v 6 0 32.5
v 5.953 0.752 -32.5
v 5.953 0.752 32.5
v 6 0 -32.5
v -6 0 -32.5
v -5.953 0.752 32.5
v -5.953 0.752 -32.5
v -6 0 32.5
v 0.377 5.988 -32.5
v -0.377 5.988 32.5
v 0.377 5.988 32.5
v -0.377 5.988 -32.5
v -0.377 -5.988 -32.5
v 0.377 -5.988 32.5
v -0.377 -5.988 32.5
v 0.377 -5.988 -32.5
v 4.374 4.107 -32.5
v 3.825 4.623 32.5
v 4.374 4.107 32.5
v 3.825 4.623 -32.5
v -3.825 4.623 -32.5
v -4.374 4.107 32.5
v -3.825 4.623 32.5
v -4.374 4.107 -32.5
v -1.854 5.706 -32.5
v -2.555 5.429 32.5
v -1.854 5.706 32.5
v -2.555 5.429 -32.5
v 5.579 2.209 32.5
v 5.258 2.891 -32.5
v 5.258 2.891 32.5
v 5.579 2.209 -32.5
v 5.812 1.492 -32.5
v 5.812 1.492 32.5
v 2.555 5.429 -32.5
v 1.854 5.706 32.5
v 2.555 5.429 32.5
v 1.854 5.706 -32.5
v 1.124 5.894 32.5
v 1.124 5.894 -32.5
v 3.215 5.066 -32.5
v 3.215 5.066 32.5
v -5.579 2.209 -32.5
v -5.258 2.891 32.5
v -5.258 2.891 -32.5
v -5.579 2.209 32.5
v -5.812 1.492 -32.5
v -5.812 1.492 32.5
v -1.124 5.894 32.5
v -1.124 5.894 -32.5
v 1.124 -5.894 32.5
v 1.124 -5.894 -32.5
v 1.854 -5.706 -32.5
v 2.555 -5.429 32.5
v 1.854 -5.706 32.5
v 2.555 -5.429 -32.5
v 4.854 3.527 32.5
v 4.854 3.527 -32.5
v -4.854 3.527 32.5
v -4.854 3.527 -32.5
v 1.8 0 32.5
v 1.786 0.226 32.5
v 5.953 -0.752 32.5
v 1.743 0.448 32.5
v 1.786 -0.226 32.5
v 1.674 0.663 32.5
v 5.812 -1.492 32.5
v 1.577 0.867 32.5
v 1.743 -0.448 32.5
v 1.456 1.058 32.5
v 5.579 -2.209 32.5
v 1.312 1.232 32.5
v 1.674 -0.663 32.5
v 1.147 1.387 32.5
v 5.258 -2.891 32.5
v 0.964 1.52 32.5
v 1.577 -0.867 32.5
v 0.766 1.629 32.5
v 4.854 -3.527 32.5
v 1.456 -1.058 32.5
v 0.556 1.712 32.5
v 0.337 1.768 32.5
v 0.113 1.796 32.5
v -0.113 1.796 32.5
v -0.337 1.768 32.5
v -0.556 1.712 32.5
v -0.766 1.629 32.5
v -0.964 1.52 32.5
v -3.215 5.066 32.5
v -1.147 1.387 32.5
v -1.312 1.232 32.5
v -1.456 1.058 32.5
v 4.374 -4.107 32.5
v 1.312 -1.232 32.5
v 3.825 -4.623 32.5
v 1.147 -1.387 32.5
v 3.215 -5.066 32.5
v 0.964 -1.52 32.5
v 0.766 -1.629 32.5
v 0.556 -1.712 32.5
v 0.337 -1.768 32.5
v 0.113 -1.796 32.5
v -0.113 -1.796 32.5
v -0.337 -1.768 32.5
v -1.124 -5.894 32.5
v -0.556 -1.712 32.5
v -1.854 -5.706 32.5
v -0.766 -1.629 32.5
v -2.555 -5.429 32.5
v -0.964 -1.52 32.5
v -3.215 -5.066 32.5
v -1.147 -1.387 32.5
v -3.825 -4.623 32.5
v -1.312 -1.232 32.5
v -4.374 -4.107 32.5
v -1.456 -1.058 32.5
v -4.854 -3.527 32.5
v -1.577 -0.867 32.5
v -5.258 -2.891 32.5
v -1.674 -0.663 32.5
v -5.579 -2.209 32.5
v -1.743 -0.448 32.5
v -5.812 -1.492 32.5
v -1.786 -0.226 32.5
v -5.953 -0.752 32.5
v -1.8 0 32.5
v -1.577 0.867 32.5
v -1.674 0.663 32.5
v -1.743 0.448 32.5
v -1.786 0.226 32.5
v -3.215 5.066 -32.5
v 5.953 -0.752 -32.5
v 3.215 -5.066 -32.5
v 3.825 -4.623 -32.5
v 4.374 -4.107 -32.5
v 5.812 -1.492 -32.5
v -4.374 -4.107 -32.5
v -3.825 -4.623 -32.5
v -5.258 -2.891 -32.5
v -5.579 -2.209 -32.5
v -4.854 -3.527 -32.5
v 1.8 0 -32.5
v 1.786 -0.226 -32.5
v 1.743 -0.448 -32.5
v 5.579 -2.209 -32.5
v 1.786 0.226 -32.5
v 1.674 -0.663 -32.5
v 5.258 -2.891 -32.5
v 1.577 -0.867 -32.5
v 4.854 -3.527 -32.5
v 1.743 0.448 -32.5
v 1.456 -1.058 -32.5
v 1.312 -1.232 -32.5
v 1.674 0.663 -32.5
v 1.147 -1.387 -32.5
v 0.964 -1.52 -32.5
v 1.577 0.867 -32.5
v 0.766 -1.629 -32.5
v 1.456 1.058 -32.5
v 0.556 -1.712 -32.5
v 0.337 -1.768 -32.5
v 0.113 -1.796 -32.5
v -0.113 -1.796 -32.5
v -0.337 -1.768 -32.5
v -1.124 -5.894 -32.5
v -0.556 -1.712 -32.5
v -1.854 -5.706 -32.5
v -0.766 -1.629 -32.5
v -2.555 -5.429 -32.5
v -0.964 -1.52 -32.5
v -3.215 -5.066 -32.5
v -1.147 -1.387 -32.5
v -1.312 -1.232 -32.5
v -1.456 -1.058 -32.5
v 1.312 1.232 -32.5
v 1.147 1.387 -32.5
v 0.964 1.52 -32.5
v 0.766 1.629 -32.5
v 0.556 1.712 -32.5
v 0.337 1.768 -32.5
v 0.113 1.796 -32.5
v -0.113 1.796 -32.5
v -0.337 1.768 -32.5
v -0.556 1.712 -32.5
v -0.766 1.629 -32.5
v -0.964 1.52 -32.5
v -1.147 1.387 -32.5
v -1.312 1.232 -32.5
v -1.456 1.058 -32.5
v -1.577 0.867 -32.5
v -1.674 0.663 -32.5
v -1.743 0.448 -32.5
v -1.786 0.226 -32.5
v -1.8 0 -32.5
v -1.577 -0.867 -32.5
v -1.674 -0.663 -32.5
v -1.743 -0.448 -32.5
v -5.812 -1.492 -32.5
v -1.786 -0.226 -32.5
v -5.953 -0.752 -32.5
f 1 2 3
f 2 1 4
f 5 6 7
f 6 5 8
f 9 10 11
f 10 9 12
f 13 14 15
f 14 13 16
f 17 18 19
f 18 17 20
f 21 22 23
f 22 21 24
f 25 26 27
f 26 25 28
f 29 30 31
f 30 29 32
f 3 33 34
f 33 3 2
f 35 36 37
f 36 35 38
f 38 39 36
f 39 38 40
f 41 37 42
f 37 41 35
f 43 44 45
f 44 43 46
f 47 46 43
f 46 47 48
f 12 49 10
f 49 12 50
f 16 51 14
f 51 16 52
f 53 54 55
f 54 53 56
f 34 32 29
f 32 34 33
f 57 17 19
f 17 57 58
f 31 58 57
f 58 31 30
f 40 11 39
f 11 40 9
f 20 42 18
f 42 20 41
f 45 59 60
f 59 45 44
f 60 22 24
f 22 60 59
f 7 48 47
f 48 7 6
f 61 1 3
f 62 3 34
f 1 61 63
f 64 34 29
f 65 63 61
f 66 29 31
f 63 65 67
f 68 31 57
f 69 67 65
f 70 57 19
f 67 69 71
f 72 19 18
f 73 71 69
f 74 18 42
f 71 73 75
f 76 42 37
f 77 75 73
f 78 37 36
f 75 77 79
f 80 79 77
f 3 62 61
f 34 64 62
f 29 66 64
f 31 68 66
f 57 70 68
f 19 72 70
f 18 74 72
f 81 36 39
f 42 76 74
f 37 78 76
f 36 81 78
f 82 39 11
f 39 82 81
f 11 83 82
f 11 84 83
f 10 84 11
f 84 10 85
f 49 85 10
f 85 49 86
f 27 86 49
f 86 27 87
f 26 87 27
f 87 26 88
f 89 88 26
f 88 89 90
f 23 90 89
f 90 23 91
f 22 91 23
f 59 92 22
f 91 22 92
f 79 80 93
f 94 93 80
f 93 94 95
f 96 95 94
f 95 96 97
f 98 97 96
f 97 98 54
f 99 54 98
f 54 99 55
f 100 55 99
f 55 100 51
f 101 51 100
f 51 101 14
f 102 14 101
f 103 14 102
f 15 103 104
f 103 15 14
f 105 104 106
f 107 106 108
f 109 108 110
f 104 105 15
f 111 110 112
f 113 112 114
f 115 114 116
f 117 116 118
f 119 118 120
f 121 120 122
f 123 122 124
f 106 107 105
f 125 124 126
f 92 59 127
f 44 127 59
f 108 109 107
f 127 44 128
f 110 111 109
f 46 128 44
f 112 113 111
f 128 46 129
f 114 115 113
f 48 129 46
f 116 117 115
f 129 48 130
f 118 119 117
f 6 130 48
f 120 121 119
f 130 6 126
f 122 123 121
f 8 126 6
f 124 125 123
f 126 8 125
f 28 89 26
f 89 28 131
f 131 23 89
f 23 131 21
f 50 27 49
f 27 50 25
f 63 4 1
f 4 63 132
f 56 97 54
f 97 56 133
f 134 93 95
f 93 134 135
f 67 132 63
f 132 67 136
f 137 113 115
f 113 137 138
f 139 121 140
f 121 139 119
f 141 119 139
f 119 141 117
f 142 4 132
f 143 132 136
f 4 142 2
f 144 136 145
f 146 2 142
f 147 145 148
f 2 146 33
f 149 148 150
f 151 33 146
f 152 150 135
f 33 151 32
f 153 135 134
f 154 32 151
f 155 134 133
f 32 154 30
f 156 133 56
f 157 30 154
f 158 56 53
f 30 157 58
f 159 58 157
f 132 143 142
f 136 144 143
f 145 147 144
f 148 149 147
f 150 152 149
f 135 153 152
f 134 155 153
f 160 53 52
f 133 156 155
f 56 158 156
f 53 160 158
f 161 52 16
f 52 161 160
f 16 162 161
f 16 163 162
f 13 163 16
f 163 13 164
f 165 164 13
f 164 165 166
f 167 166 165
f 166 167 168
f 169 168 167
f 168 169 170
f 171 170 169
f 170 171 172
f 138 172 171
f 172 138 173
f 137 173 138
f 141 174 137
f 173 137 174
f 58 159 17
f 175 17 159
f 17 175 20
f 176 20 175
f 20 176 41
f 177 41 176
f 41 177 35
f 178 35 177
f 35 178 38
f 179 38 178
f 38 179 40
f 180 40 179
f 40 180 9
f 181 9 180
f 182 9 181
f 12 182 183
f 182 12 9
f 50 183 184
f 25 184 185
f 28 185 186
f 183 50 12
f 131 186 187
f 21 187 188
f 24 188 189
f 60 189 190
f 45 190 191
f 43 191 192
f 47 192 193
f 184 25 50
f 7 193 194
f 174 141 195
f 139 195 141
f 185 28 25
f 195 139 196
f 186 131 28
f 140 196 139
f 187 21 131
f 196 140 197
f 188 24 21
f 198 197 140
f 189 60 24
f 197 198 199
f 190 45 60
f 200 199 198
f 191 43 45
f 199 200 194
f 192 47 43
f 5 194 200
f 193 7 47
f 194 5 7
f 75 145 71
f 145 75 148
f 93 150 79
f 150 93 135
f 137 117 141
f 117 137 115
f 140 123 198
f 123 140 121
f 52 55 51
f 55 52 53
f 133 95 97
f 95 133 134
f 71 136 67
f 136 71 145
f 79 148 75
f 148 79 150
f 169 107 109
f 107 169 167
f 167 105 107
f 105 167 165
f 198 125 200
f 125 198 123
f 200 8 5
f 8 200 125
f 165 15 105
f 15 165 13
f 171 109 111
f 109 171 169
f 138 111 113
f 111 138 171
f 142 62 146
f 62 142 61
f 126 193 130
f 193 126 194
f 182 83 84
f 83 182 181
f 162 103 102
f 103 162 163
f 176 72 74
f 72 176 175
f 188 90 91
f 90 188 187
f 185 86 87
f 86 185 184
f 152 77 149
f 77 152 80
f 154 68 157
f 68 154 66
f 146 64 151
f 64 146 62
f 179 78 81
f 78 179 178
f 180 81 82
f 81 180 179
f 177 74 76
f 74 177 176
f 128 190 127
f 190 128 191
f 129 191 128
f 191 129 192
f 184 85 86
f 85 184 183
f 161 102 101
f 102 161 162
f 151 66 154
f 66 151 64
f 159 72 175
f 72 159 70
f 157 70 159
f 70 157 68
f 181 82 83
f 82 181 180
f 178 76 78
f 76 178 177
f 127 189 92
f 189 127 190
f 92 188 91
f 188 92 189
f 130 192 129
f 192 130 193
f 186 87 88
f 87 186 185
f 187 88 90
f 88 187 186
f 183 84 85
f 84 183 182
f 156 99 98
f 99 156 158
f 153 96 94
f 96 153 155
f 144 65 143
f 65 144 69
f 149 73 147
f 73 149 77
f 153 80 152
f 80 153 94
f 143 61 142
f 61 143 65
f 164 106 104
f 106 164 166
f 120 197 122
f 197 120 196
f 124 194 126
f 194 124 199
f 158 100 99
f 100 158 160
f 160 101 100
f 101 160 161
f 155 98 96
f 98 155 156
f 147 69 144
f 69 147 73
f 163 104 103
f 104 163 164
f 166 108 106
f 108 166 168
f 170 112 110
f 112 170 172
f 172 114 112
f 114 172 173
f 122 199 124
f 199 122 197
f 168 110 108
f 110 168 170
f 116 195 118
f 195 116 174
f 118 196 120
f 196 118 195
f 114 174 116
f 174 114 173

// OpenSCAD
$fn = 50;


difference() {
	union() {
		translate(v = [0, 0, -32.5000000000]) {
			cylinder(h = 65, r = 6.0000000000);
		}
	}
	union() {
		translate(v = [0, 0, -100.0000000000]) {
			cylinder(h = 200, r = 1.8000000000);
		}
	}
}
